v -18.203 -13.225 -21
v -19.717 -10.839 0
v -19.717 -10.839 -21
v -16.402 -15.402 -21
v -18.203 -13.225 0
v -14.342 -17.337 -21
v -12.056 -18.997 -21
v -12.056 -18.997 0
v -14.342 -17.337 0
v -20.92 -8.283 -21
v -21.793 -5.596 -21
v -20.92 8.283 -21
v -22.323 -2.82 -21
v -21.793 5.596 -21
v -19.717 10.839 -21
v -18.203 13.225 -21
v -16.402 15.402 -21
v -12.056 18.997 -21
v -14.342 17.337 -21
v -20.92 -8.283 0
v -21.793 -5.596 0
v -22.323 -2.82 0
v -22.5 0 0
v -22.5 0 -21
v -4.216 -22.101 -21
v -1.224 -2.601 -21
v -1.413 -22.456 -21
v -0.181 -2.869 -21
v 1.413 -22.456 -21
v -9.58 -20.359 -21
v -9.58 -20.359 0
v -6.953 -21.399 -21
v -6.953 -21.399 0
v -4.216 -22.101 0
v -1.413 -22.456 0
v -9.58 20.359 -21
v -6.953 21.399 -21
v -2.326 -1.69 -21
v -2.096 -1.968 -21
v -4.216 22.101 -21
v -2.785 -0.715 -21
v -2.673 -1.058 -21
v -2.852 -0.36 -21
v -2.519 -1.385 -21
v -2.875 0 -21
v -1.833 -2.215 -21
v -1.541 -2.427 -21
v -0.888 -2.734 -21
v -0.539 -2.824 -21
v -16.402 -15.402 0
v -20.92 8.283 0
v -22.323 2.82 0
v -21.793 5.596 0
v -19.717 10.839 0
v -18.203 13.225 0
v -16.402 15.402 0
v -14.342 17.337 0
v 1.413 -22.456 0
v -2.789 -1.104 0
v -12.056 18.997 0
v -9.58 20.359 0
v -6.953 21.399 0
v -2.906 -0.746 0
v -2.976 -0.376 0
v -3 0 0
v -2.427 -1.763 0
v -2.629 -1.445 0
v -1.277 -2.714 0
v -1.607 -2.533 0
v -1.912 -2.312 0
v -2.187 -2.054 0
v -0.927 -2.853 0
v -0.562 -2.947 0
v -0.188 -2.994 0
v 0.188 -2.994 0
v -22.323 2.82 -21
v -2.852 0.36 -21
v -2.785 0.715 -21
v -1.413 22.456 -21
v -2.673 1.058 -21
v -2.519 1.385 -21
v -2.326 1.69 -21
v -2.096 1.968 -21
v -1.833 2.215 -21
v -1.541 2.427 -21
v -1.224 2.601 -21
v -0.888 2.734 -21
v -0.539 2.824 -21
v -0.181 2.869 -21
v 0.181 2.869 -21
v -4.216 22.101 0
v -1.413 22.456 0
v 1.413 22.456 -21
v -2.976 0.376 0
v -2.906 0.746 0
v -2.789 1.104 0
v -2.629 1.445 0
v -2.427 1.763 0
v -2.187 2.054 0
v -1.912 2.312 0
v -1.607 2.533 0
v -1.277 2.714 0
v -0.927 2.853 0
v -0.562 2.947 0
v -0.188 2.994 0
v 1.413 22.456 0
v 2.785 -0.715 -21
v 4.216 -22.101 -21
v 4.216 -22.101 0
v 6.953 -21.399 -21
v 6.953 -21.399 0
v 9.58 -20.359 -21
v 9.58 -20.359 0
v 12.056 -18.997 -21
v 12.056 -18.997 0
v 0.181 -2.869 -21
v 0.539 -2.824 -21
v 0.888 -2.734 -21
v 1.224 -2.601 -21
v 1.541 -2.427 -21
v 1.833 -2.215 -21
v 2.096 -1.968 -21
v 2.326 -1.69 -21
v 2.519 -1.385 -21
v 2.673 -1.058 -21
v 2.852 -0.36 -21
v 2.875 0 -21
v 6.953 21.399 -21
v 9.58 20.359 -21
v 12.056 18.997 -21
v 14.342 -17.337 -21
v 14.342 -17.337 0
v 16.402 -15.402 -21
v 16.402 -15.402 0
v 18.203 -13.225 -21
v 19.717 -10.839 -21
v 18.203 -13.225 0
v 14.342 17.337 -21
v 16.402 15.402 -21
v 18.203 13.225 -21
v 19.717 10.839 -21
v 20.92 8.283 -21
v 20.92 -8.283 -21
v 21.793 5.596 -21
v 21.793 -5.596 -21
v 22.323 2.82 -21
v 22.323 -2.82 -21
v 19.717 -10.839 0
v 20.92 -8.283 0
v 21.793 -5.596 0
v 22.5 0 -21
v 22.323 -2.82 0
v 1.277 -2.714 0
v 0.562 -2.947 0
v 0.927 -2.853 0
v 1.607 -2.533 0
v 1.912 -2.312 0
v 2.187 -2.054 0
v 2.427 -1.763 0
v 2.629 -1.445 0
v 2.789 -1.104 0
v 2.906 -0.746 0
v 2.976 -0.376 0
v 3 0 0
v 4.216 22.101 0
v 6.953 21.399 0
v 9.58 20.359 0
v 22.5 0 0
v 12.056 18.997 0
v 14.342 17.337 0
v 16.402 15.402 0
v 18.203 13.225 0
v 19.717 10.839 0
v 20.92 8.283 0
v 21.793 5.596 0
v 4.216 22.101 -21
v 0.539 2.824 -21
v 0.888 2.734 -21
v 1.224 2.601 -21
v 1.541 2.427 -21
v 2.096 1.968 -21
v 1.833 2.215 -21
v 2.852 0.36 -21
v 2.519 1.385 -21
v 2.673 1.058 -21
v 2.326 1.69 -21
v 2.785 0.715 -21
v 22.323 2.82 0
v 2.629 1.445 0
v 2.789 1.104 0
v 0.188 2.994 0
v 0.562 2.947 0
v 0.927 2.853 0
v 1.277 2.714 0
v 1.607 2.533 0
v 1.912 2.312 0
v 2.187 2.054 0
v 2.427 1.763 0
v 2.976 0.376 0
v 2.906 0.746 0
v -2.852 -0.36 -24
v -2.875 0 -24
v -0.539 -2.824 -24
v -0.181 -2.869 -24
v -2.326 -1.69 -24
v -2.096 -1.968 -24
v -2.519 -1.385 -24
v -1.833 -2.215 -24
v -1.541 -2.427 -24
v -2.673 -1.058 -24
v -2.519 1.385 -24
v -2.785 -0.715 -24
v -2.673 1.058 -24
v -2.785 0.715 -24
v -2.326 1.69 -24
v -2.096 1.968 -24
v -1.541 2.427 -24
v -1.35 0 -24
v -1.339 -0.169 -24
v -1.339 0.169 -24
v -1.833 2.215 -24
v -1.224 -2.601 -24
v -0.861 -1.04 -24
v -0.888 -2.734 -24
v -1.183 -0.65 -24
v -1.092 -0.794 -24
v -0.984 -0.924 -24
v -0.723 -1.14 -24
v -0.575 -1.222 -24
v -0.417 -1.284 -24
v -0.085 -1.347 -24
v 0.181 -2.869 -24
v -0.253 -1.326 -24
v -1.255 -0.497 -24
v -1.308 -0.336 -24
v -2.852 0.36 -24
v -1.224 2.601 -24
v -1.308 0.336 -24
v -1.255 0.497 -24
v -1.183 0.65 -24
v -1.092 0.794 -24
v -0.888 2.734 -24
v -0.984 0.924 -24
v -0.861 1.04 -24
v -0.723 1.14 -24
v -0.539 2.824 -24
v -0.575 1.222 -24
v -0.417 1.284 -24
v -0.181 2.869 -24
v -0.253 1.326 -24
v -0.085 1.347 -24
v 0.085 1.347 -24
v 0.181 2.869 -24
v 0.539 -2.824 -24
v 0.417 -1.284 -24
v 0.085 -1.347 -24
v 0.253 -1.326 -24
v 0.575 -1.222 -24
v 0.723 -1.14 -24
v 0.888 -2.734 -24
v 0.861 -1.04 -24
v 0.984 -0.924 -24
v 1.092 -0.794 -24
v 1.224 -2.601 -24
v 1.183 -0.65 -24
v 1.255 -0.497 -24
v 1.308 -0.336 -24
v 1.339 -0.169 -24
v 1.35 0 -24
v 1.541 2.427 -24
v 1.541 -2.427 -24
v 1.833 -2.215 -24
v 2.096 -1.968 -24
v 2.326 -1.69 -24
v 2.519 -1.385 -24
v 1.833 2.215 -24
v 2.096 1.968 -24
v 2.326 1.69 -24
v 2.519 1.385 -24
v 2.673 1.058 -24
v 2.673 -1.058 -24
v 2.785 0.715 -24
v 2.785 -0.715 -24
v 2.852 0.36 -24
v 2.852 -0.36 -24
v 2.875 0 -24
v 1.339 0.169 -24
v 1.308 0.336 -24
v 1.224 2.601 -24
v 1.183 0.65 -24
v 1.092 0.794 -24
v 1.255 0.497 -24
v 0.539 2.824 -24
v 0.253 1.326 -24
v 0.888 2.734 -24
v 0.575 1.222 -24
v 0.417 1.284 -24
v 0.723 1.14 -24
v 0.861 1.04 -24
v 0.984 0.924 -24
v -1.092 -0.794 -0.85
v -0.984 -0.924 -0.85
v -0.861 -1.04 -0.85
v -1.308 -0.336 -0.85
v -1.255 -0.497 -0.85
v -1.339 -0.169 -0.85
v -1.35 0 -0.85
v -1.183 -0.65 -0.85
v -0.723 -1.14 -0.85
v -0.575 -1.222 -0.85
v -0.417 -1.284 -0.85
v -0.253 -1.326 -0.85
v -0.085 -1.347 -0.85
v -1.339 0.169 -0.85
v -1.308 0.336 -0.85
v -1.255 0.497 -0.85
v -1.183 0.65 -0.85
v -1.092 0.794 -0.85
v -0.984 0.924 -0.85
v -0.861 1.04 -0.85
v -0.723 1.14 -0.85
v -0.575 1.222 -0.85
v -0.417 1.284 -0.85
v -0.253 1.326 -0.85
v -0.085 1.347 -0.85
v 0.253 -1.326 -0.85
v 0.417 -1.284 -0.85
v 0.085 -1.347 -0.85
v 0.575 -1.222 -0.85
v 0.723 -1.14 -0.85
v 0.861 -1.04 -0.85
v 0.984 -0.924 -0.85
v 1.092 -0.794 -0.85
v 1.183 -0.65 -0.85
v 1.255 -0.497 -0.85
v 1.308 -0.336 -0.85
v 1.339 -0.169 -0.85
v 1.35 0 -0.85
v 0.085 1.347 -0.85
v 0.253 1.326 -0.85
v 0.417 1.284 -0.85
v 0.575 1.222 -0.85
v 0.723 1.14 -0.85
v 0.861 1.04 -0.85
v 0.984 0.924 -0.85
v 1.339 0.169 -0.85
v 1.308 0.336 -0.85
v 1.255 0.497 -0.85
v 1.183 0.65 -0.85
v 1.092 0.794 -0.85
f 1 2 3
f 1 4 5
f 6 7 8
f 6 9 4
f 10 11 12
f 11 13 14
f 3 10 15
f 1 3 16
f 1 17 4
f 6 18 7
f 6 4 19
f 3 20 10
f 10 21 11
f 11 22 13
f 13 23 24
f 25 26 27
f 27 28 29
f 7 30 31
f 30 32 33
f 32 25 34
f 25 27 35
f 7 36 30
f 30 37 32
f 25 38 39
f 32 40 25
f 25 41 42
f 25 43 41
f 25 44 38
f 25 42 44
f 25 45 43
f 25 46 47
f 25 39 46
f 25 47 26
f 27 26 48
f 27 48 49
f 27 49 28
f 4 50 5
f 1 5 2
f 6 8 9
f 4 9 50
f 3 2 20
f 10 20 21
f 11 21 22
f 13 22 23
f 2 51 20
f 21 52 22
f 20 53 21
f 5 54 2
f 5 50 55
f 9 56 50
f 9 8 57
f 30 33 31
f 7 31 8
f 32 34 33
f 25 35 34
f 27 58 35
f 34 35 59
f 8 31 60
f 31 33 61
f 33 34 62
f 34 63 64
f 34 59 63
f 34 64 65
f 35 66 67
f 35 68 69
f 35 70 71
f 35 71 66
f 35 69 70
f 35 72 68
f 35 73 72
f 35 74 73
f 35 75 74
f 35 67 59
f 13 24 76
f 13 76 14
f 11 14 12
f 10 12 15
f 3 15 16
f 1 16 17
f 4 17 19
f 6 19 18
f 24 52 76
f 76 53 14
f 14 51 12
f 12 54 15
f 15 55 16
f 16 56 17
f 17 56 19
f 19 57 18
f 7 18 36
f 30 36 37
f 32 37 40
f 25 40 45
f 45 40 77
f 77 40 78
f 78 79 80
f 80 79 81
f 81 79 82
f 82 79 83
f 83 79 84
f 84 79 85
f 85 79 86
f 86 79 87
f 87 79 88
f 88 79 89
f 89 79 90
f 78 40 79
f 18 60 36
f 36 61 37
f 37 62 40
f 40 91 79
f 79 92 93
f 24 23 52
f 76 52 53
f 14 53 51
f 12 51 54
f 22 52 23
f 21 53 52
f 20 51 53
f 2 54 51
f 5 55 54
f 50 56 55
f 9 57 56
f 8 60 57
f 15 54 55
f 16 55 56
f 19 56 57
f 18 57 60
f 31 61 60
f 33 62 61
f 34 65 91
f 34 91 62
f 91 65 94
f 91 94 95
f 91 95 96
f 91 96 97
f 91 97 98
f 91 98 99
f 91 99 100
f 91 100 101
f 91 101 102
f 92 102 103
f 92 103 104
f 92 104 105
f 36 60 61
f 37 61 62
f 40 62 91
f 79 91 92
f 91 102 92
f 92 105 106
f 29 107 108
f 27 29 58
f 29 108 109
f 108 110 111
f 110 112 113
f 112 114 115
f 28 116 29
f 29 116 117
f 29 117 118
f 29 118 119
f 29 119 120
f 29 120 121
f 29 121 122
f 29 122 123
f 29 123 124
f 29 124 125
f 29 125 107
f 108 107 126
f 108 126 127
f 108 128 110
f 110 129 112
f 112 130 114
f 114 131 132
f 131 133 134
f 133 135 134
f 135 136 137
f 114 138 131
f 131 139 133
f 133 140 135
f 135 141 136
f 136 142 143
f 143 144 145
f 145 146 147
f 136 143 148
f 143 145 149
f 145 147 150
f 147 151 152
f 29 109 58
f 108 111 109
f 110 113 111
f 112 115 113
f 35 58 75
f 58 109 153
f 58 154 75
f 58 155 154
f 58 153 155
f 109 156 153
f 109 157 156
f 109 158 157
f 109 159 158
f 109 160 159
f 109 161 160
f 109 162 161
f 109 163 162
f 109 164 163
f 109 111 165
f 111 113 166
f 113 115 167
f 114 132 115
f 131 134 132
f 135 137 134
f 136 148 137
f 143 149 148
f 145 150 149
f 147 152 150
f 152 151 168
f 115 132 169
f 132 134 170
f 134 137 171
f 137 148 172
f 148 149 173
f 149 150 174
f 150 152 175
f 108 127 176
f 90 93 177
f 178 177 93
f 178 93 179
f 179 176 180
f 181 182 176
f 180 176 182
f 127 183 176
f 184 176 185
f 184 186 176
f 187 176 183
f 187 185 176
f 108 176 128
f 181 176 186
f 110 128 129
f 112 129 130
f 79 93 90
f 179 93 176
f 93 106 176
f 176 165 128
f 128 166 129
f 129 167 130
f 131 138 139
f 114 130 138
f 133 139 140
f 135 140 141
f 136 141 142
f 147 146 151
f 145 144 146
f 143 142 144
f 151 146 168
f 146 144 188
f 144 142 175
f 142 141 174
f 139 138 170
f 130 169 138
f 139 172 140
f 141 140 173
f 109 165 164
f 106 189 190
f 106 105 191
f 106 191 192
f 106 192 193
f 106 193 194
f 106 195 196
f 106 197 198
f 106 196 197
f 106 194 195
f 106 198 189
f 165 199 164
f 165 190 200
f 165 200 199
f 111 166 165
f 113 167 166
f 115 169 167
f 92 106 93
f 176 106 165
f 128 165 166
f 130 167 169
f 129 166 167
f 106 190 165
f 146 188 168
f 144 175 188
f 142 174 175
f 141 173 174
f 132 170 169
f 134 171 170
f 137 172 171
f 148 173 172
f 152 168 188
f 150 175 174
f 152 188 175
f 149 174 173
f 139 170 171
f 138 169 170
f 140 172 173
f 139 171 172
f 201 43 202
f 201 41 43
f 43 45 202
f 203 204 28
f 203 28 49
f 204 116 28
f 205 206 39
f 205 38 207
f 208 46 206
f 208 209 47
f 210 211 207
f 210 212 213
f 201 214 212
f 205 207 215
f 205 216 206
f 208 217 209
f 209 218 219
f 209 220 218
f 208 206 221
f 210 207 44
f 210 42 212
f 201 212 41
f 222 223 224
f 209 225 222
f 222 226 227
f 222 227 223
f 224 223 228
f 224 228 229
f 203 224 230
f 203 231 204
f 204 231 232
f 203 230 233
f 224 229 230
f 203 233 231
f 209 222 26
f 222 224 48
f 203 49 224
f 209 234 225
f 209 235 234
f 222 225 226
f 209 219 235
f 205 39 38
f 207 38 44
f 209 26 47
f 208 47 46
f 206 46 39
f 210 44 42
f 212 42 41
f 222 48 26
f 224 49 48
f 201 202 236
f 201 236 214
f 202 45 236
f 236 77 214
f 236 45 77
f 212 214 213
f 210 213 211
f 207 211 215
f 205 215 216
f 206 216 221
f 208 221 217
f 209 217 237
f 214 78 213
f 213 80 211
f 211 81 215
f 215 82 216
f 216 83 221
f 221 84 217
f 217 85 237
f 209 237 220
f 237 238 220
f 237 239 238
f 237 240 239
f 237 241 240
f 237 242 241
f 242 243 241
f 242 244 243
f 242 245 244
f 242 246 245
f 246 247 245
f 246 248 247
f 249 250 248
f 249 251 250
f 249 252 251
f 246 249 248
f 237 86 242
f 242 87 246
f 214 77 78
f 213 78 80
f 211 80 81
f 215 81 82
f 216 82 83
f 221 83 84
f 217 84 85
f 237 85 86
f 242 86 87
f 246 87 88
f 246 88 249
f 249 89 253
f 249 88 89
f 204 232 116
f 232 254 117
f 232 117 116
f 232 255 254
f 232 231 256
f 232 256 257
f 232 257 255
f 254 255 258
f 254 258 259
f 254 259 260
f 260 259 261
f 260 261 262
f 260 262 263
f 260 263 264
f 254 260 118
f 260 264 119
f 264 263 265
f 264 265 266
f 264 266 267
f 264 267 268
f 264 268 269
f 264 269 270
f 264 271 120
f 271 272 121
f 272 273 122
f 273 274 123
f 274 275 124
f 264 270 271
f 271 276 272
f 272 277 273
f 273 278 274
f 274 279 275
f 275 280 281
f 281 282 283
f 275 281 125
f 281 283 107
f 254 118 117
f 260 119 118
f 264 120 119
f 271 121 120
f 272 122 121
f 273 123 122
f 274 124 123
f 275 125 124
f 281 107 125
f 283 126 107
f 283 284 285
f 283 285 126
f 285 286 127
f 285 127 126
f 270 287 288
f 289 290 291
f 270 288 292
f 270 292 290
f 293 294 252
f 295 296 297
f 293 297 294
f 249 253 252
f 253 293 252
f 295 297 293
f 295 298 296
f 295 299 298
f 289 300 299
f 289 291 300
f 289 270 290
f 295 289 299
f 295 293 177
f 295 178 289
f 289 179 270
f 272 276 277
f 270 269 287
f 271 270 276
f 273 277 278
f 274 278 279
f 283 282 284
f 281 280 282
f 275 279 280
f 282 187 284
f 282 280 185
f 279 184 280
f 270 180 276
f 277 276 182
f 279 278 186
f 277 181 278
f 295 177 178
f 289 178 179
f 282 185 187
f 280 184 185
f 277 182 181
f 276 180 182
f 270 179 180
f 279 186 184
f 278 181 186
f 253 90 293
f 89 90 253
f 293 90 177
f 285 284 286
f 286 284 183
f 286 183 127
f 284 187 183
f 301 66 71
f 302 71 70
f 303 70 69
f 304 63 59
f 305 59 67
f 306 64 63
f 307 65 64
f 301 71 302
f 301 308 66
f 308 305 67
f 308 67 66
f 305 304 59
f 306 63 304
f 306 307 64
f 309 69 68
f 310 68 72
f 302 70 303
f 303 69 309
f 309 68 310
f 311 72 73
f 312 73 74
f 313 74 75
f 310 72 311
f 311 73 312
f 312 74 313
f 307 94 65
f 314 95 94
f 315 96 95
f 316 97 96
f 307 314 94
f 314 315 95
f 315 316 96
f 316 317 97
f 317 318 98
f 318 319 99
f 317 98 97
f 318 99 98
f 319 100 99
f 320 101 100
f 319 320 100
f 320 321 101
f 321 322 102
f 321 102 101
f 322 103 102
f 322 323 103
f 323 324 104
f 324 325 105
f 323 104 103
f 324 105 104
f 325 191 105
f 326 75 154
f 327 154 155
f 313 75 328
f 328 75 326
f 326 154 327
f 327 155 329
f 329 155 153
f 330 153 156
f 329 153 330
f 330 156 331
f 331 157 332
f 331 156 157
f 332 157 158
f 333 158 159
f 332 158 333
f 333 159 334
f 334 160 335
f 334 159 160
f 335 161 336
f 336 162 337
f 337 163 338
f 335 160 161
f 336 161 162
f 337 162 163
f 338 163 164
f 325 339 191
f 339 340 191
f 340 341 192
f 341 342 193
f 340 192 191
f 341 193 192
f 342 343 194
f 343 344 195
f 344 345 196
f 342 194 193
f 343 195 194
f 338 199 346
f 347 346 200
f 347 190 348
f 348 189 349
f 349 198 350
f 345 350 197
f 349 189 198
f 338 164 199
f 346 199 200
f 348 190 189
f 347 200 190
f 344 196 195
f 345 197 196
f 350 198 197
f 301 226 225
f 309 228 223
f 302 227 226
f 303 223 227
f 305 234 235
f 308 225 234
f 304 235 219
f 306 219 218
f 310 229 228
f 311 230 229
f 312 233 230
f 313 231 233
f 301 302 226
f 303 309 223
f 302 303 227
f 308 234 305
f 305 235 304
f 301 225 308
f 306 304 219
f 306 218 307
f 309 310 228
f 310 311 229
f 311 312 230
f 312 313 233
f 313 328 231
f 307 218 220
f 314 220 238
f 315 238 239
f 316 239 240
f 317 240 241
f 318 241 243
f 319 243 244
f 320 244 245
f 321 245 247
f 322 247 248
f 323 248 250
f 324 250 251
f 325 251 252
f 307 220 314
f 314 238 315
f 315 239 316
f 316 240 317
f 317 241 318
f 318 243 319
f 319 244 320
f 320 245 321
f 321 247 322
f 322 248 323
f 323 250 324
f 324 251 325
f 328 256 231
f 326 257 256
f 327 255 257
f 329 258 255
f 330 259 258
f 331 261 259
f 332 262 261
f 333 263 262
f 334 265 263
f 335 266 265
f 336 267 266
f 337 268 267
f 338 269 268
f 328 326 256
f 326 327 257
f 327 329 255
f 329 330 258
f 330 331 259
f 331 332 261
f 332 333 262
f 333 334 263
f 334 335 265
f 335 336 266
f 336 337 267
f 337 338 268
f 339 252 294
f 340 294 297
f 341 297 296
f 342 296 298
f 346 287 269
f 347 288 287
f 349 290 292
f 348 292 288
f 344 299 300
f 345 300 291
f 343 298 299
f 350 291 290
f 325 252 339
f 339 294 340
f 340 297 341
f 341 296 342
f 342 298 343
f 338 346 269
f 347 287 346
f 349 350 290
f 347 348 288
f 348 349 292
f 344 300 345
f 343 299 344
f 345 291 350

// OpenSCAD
$fn = 50;

difference() {
	union() {
		translate(v = [0, 0, -21.0]) {
			cylinder(h = 21, r = 22.5);
		}
		#translate(v = [0, 0, -24.0]) {
			cylinder(h = 24, r = 2.875);
		}
	}
	union() {
		translate(v = [0, 0, 0]) {
			rotate(a = [0, 0, 0]) {
				difference() {
					union() {
						translate(v = [0, 0, -24.0]) {
							cylinder(h = 24, r = 1.0);
						}
						translate(v = [0, 0, -0.85]) {
							cylinder(h = 0.85, r1 = 1.35, r2 = 3.0);
						}
						translate(v = [0, 0, -24.0]) {
							cylinder(h = 24, r = 1.35);
						}
						translate(v = [0, 0, -24.0]) {
							cylinder(h = 24, r = 1.0);
						}
					}
					union();
				}
			}
		}
	}
}
